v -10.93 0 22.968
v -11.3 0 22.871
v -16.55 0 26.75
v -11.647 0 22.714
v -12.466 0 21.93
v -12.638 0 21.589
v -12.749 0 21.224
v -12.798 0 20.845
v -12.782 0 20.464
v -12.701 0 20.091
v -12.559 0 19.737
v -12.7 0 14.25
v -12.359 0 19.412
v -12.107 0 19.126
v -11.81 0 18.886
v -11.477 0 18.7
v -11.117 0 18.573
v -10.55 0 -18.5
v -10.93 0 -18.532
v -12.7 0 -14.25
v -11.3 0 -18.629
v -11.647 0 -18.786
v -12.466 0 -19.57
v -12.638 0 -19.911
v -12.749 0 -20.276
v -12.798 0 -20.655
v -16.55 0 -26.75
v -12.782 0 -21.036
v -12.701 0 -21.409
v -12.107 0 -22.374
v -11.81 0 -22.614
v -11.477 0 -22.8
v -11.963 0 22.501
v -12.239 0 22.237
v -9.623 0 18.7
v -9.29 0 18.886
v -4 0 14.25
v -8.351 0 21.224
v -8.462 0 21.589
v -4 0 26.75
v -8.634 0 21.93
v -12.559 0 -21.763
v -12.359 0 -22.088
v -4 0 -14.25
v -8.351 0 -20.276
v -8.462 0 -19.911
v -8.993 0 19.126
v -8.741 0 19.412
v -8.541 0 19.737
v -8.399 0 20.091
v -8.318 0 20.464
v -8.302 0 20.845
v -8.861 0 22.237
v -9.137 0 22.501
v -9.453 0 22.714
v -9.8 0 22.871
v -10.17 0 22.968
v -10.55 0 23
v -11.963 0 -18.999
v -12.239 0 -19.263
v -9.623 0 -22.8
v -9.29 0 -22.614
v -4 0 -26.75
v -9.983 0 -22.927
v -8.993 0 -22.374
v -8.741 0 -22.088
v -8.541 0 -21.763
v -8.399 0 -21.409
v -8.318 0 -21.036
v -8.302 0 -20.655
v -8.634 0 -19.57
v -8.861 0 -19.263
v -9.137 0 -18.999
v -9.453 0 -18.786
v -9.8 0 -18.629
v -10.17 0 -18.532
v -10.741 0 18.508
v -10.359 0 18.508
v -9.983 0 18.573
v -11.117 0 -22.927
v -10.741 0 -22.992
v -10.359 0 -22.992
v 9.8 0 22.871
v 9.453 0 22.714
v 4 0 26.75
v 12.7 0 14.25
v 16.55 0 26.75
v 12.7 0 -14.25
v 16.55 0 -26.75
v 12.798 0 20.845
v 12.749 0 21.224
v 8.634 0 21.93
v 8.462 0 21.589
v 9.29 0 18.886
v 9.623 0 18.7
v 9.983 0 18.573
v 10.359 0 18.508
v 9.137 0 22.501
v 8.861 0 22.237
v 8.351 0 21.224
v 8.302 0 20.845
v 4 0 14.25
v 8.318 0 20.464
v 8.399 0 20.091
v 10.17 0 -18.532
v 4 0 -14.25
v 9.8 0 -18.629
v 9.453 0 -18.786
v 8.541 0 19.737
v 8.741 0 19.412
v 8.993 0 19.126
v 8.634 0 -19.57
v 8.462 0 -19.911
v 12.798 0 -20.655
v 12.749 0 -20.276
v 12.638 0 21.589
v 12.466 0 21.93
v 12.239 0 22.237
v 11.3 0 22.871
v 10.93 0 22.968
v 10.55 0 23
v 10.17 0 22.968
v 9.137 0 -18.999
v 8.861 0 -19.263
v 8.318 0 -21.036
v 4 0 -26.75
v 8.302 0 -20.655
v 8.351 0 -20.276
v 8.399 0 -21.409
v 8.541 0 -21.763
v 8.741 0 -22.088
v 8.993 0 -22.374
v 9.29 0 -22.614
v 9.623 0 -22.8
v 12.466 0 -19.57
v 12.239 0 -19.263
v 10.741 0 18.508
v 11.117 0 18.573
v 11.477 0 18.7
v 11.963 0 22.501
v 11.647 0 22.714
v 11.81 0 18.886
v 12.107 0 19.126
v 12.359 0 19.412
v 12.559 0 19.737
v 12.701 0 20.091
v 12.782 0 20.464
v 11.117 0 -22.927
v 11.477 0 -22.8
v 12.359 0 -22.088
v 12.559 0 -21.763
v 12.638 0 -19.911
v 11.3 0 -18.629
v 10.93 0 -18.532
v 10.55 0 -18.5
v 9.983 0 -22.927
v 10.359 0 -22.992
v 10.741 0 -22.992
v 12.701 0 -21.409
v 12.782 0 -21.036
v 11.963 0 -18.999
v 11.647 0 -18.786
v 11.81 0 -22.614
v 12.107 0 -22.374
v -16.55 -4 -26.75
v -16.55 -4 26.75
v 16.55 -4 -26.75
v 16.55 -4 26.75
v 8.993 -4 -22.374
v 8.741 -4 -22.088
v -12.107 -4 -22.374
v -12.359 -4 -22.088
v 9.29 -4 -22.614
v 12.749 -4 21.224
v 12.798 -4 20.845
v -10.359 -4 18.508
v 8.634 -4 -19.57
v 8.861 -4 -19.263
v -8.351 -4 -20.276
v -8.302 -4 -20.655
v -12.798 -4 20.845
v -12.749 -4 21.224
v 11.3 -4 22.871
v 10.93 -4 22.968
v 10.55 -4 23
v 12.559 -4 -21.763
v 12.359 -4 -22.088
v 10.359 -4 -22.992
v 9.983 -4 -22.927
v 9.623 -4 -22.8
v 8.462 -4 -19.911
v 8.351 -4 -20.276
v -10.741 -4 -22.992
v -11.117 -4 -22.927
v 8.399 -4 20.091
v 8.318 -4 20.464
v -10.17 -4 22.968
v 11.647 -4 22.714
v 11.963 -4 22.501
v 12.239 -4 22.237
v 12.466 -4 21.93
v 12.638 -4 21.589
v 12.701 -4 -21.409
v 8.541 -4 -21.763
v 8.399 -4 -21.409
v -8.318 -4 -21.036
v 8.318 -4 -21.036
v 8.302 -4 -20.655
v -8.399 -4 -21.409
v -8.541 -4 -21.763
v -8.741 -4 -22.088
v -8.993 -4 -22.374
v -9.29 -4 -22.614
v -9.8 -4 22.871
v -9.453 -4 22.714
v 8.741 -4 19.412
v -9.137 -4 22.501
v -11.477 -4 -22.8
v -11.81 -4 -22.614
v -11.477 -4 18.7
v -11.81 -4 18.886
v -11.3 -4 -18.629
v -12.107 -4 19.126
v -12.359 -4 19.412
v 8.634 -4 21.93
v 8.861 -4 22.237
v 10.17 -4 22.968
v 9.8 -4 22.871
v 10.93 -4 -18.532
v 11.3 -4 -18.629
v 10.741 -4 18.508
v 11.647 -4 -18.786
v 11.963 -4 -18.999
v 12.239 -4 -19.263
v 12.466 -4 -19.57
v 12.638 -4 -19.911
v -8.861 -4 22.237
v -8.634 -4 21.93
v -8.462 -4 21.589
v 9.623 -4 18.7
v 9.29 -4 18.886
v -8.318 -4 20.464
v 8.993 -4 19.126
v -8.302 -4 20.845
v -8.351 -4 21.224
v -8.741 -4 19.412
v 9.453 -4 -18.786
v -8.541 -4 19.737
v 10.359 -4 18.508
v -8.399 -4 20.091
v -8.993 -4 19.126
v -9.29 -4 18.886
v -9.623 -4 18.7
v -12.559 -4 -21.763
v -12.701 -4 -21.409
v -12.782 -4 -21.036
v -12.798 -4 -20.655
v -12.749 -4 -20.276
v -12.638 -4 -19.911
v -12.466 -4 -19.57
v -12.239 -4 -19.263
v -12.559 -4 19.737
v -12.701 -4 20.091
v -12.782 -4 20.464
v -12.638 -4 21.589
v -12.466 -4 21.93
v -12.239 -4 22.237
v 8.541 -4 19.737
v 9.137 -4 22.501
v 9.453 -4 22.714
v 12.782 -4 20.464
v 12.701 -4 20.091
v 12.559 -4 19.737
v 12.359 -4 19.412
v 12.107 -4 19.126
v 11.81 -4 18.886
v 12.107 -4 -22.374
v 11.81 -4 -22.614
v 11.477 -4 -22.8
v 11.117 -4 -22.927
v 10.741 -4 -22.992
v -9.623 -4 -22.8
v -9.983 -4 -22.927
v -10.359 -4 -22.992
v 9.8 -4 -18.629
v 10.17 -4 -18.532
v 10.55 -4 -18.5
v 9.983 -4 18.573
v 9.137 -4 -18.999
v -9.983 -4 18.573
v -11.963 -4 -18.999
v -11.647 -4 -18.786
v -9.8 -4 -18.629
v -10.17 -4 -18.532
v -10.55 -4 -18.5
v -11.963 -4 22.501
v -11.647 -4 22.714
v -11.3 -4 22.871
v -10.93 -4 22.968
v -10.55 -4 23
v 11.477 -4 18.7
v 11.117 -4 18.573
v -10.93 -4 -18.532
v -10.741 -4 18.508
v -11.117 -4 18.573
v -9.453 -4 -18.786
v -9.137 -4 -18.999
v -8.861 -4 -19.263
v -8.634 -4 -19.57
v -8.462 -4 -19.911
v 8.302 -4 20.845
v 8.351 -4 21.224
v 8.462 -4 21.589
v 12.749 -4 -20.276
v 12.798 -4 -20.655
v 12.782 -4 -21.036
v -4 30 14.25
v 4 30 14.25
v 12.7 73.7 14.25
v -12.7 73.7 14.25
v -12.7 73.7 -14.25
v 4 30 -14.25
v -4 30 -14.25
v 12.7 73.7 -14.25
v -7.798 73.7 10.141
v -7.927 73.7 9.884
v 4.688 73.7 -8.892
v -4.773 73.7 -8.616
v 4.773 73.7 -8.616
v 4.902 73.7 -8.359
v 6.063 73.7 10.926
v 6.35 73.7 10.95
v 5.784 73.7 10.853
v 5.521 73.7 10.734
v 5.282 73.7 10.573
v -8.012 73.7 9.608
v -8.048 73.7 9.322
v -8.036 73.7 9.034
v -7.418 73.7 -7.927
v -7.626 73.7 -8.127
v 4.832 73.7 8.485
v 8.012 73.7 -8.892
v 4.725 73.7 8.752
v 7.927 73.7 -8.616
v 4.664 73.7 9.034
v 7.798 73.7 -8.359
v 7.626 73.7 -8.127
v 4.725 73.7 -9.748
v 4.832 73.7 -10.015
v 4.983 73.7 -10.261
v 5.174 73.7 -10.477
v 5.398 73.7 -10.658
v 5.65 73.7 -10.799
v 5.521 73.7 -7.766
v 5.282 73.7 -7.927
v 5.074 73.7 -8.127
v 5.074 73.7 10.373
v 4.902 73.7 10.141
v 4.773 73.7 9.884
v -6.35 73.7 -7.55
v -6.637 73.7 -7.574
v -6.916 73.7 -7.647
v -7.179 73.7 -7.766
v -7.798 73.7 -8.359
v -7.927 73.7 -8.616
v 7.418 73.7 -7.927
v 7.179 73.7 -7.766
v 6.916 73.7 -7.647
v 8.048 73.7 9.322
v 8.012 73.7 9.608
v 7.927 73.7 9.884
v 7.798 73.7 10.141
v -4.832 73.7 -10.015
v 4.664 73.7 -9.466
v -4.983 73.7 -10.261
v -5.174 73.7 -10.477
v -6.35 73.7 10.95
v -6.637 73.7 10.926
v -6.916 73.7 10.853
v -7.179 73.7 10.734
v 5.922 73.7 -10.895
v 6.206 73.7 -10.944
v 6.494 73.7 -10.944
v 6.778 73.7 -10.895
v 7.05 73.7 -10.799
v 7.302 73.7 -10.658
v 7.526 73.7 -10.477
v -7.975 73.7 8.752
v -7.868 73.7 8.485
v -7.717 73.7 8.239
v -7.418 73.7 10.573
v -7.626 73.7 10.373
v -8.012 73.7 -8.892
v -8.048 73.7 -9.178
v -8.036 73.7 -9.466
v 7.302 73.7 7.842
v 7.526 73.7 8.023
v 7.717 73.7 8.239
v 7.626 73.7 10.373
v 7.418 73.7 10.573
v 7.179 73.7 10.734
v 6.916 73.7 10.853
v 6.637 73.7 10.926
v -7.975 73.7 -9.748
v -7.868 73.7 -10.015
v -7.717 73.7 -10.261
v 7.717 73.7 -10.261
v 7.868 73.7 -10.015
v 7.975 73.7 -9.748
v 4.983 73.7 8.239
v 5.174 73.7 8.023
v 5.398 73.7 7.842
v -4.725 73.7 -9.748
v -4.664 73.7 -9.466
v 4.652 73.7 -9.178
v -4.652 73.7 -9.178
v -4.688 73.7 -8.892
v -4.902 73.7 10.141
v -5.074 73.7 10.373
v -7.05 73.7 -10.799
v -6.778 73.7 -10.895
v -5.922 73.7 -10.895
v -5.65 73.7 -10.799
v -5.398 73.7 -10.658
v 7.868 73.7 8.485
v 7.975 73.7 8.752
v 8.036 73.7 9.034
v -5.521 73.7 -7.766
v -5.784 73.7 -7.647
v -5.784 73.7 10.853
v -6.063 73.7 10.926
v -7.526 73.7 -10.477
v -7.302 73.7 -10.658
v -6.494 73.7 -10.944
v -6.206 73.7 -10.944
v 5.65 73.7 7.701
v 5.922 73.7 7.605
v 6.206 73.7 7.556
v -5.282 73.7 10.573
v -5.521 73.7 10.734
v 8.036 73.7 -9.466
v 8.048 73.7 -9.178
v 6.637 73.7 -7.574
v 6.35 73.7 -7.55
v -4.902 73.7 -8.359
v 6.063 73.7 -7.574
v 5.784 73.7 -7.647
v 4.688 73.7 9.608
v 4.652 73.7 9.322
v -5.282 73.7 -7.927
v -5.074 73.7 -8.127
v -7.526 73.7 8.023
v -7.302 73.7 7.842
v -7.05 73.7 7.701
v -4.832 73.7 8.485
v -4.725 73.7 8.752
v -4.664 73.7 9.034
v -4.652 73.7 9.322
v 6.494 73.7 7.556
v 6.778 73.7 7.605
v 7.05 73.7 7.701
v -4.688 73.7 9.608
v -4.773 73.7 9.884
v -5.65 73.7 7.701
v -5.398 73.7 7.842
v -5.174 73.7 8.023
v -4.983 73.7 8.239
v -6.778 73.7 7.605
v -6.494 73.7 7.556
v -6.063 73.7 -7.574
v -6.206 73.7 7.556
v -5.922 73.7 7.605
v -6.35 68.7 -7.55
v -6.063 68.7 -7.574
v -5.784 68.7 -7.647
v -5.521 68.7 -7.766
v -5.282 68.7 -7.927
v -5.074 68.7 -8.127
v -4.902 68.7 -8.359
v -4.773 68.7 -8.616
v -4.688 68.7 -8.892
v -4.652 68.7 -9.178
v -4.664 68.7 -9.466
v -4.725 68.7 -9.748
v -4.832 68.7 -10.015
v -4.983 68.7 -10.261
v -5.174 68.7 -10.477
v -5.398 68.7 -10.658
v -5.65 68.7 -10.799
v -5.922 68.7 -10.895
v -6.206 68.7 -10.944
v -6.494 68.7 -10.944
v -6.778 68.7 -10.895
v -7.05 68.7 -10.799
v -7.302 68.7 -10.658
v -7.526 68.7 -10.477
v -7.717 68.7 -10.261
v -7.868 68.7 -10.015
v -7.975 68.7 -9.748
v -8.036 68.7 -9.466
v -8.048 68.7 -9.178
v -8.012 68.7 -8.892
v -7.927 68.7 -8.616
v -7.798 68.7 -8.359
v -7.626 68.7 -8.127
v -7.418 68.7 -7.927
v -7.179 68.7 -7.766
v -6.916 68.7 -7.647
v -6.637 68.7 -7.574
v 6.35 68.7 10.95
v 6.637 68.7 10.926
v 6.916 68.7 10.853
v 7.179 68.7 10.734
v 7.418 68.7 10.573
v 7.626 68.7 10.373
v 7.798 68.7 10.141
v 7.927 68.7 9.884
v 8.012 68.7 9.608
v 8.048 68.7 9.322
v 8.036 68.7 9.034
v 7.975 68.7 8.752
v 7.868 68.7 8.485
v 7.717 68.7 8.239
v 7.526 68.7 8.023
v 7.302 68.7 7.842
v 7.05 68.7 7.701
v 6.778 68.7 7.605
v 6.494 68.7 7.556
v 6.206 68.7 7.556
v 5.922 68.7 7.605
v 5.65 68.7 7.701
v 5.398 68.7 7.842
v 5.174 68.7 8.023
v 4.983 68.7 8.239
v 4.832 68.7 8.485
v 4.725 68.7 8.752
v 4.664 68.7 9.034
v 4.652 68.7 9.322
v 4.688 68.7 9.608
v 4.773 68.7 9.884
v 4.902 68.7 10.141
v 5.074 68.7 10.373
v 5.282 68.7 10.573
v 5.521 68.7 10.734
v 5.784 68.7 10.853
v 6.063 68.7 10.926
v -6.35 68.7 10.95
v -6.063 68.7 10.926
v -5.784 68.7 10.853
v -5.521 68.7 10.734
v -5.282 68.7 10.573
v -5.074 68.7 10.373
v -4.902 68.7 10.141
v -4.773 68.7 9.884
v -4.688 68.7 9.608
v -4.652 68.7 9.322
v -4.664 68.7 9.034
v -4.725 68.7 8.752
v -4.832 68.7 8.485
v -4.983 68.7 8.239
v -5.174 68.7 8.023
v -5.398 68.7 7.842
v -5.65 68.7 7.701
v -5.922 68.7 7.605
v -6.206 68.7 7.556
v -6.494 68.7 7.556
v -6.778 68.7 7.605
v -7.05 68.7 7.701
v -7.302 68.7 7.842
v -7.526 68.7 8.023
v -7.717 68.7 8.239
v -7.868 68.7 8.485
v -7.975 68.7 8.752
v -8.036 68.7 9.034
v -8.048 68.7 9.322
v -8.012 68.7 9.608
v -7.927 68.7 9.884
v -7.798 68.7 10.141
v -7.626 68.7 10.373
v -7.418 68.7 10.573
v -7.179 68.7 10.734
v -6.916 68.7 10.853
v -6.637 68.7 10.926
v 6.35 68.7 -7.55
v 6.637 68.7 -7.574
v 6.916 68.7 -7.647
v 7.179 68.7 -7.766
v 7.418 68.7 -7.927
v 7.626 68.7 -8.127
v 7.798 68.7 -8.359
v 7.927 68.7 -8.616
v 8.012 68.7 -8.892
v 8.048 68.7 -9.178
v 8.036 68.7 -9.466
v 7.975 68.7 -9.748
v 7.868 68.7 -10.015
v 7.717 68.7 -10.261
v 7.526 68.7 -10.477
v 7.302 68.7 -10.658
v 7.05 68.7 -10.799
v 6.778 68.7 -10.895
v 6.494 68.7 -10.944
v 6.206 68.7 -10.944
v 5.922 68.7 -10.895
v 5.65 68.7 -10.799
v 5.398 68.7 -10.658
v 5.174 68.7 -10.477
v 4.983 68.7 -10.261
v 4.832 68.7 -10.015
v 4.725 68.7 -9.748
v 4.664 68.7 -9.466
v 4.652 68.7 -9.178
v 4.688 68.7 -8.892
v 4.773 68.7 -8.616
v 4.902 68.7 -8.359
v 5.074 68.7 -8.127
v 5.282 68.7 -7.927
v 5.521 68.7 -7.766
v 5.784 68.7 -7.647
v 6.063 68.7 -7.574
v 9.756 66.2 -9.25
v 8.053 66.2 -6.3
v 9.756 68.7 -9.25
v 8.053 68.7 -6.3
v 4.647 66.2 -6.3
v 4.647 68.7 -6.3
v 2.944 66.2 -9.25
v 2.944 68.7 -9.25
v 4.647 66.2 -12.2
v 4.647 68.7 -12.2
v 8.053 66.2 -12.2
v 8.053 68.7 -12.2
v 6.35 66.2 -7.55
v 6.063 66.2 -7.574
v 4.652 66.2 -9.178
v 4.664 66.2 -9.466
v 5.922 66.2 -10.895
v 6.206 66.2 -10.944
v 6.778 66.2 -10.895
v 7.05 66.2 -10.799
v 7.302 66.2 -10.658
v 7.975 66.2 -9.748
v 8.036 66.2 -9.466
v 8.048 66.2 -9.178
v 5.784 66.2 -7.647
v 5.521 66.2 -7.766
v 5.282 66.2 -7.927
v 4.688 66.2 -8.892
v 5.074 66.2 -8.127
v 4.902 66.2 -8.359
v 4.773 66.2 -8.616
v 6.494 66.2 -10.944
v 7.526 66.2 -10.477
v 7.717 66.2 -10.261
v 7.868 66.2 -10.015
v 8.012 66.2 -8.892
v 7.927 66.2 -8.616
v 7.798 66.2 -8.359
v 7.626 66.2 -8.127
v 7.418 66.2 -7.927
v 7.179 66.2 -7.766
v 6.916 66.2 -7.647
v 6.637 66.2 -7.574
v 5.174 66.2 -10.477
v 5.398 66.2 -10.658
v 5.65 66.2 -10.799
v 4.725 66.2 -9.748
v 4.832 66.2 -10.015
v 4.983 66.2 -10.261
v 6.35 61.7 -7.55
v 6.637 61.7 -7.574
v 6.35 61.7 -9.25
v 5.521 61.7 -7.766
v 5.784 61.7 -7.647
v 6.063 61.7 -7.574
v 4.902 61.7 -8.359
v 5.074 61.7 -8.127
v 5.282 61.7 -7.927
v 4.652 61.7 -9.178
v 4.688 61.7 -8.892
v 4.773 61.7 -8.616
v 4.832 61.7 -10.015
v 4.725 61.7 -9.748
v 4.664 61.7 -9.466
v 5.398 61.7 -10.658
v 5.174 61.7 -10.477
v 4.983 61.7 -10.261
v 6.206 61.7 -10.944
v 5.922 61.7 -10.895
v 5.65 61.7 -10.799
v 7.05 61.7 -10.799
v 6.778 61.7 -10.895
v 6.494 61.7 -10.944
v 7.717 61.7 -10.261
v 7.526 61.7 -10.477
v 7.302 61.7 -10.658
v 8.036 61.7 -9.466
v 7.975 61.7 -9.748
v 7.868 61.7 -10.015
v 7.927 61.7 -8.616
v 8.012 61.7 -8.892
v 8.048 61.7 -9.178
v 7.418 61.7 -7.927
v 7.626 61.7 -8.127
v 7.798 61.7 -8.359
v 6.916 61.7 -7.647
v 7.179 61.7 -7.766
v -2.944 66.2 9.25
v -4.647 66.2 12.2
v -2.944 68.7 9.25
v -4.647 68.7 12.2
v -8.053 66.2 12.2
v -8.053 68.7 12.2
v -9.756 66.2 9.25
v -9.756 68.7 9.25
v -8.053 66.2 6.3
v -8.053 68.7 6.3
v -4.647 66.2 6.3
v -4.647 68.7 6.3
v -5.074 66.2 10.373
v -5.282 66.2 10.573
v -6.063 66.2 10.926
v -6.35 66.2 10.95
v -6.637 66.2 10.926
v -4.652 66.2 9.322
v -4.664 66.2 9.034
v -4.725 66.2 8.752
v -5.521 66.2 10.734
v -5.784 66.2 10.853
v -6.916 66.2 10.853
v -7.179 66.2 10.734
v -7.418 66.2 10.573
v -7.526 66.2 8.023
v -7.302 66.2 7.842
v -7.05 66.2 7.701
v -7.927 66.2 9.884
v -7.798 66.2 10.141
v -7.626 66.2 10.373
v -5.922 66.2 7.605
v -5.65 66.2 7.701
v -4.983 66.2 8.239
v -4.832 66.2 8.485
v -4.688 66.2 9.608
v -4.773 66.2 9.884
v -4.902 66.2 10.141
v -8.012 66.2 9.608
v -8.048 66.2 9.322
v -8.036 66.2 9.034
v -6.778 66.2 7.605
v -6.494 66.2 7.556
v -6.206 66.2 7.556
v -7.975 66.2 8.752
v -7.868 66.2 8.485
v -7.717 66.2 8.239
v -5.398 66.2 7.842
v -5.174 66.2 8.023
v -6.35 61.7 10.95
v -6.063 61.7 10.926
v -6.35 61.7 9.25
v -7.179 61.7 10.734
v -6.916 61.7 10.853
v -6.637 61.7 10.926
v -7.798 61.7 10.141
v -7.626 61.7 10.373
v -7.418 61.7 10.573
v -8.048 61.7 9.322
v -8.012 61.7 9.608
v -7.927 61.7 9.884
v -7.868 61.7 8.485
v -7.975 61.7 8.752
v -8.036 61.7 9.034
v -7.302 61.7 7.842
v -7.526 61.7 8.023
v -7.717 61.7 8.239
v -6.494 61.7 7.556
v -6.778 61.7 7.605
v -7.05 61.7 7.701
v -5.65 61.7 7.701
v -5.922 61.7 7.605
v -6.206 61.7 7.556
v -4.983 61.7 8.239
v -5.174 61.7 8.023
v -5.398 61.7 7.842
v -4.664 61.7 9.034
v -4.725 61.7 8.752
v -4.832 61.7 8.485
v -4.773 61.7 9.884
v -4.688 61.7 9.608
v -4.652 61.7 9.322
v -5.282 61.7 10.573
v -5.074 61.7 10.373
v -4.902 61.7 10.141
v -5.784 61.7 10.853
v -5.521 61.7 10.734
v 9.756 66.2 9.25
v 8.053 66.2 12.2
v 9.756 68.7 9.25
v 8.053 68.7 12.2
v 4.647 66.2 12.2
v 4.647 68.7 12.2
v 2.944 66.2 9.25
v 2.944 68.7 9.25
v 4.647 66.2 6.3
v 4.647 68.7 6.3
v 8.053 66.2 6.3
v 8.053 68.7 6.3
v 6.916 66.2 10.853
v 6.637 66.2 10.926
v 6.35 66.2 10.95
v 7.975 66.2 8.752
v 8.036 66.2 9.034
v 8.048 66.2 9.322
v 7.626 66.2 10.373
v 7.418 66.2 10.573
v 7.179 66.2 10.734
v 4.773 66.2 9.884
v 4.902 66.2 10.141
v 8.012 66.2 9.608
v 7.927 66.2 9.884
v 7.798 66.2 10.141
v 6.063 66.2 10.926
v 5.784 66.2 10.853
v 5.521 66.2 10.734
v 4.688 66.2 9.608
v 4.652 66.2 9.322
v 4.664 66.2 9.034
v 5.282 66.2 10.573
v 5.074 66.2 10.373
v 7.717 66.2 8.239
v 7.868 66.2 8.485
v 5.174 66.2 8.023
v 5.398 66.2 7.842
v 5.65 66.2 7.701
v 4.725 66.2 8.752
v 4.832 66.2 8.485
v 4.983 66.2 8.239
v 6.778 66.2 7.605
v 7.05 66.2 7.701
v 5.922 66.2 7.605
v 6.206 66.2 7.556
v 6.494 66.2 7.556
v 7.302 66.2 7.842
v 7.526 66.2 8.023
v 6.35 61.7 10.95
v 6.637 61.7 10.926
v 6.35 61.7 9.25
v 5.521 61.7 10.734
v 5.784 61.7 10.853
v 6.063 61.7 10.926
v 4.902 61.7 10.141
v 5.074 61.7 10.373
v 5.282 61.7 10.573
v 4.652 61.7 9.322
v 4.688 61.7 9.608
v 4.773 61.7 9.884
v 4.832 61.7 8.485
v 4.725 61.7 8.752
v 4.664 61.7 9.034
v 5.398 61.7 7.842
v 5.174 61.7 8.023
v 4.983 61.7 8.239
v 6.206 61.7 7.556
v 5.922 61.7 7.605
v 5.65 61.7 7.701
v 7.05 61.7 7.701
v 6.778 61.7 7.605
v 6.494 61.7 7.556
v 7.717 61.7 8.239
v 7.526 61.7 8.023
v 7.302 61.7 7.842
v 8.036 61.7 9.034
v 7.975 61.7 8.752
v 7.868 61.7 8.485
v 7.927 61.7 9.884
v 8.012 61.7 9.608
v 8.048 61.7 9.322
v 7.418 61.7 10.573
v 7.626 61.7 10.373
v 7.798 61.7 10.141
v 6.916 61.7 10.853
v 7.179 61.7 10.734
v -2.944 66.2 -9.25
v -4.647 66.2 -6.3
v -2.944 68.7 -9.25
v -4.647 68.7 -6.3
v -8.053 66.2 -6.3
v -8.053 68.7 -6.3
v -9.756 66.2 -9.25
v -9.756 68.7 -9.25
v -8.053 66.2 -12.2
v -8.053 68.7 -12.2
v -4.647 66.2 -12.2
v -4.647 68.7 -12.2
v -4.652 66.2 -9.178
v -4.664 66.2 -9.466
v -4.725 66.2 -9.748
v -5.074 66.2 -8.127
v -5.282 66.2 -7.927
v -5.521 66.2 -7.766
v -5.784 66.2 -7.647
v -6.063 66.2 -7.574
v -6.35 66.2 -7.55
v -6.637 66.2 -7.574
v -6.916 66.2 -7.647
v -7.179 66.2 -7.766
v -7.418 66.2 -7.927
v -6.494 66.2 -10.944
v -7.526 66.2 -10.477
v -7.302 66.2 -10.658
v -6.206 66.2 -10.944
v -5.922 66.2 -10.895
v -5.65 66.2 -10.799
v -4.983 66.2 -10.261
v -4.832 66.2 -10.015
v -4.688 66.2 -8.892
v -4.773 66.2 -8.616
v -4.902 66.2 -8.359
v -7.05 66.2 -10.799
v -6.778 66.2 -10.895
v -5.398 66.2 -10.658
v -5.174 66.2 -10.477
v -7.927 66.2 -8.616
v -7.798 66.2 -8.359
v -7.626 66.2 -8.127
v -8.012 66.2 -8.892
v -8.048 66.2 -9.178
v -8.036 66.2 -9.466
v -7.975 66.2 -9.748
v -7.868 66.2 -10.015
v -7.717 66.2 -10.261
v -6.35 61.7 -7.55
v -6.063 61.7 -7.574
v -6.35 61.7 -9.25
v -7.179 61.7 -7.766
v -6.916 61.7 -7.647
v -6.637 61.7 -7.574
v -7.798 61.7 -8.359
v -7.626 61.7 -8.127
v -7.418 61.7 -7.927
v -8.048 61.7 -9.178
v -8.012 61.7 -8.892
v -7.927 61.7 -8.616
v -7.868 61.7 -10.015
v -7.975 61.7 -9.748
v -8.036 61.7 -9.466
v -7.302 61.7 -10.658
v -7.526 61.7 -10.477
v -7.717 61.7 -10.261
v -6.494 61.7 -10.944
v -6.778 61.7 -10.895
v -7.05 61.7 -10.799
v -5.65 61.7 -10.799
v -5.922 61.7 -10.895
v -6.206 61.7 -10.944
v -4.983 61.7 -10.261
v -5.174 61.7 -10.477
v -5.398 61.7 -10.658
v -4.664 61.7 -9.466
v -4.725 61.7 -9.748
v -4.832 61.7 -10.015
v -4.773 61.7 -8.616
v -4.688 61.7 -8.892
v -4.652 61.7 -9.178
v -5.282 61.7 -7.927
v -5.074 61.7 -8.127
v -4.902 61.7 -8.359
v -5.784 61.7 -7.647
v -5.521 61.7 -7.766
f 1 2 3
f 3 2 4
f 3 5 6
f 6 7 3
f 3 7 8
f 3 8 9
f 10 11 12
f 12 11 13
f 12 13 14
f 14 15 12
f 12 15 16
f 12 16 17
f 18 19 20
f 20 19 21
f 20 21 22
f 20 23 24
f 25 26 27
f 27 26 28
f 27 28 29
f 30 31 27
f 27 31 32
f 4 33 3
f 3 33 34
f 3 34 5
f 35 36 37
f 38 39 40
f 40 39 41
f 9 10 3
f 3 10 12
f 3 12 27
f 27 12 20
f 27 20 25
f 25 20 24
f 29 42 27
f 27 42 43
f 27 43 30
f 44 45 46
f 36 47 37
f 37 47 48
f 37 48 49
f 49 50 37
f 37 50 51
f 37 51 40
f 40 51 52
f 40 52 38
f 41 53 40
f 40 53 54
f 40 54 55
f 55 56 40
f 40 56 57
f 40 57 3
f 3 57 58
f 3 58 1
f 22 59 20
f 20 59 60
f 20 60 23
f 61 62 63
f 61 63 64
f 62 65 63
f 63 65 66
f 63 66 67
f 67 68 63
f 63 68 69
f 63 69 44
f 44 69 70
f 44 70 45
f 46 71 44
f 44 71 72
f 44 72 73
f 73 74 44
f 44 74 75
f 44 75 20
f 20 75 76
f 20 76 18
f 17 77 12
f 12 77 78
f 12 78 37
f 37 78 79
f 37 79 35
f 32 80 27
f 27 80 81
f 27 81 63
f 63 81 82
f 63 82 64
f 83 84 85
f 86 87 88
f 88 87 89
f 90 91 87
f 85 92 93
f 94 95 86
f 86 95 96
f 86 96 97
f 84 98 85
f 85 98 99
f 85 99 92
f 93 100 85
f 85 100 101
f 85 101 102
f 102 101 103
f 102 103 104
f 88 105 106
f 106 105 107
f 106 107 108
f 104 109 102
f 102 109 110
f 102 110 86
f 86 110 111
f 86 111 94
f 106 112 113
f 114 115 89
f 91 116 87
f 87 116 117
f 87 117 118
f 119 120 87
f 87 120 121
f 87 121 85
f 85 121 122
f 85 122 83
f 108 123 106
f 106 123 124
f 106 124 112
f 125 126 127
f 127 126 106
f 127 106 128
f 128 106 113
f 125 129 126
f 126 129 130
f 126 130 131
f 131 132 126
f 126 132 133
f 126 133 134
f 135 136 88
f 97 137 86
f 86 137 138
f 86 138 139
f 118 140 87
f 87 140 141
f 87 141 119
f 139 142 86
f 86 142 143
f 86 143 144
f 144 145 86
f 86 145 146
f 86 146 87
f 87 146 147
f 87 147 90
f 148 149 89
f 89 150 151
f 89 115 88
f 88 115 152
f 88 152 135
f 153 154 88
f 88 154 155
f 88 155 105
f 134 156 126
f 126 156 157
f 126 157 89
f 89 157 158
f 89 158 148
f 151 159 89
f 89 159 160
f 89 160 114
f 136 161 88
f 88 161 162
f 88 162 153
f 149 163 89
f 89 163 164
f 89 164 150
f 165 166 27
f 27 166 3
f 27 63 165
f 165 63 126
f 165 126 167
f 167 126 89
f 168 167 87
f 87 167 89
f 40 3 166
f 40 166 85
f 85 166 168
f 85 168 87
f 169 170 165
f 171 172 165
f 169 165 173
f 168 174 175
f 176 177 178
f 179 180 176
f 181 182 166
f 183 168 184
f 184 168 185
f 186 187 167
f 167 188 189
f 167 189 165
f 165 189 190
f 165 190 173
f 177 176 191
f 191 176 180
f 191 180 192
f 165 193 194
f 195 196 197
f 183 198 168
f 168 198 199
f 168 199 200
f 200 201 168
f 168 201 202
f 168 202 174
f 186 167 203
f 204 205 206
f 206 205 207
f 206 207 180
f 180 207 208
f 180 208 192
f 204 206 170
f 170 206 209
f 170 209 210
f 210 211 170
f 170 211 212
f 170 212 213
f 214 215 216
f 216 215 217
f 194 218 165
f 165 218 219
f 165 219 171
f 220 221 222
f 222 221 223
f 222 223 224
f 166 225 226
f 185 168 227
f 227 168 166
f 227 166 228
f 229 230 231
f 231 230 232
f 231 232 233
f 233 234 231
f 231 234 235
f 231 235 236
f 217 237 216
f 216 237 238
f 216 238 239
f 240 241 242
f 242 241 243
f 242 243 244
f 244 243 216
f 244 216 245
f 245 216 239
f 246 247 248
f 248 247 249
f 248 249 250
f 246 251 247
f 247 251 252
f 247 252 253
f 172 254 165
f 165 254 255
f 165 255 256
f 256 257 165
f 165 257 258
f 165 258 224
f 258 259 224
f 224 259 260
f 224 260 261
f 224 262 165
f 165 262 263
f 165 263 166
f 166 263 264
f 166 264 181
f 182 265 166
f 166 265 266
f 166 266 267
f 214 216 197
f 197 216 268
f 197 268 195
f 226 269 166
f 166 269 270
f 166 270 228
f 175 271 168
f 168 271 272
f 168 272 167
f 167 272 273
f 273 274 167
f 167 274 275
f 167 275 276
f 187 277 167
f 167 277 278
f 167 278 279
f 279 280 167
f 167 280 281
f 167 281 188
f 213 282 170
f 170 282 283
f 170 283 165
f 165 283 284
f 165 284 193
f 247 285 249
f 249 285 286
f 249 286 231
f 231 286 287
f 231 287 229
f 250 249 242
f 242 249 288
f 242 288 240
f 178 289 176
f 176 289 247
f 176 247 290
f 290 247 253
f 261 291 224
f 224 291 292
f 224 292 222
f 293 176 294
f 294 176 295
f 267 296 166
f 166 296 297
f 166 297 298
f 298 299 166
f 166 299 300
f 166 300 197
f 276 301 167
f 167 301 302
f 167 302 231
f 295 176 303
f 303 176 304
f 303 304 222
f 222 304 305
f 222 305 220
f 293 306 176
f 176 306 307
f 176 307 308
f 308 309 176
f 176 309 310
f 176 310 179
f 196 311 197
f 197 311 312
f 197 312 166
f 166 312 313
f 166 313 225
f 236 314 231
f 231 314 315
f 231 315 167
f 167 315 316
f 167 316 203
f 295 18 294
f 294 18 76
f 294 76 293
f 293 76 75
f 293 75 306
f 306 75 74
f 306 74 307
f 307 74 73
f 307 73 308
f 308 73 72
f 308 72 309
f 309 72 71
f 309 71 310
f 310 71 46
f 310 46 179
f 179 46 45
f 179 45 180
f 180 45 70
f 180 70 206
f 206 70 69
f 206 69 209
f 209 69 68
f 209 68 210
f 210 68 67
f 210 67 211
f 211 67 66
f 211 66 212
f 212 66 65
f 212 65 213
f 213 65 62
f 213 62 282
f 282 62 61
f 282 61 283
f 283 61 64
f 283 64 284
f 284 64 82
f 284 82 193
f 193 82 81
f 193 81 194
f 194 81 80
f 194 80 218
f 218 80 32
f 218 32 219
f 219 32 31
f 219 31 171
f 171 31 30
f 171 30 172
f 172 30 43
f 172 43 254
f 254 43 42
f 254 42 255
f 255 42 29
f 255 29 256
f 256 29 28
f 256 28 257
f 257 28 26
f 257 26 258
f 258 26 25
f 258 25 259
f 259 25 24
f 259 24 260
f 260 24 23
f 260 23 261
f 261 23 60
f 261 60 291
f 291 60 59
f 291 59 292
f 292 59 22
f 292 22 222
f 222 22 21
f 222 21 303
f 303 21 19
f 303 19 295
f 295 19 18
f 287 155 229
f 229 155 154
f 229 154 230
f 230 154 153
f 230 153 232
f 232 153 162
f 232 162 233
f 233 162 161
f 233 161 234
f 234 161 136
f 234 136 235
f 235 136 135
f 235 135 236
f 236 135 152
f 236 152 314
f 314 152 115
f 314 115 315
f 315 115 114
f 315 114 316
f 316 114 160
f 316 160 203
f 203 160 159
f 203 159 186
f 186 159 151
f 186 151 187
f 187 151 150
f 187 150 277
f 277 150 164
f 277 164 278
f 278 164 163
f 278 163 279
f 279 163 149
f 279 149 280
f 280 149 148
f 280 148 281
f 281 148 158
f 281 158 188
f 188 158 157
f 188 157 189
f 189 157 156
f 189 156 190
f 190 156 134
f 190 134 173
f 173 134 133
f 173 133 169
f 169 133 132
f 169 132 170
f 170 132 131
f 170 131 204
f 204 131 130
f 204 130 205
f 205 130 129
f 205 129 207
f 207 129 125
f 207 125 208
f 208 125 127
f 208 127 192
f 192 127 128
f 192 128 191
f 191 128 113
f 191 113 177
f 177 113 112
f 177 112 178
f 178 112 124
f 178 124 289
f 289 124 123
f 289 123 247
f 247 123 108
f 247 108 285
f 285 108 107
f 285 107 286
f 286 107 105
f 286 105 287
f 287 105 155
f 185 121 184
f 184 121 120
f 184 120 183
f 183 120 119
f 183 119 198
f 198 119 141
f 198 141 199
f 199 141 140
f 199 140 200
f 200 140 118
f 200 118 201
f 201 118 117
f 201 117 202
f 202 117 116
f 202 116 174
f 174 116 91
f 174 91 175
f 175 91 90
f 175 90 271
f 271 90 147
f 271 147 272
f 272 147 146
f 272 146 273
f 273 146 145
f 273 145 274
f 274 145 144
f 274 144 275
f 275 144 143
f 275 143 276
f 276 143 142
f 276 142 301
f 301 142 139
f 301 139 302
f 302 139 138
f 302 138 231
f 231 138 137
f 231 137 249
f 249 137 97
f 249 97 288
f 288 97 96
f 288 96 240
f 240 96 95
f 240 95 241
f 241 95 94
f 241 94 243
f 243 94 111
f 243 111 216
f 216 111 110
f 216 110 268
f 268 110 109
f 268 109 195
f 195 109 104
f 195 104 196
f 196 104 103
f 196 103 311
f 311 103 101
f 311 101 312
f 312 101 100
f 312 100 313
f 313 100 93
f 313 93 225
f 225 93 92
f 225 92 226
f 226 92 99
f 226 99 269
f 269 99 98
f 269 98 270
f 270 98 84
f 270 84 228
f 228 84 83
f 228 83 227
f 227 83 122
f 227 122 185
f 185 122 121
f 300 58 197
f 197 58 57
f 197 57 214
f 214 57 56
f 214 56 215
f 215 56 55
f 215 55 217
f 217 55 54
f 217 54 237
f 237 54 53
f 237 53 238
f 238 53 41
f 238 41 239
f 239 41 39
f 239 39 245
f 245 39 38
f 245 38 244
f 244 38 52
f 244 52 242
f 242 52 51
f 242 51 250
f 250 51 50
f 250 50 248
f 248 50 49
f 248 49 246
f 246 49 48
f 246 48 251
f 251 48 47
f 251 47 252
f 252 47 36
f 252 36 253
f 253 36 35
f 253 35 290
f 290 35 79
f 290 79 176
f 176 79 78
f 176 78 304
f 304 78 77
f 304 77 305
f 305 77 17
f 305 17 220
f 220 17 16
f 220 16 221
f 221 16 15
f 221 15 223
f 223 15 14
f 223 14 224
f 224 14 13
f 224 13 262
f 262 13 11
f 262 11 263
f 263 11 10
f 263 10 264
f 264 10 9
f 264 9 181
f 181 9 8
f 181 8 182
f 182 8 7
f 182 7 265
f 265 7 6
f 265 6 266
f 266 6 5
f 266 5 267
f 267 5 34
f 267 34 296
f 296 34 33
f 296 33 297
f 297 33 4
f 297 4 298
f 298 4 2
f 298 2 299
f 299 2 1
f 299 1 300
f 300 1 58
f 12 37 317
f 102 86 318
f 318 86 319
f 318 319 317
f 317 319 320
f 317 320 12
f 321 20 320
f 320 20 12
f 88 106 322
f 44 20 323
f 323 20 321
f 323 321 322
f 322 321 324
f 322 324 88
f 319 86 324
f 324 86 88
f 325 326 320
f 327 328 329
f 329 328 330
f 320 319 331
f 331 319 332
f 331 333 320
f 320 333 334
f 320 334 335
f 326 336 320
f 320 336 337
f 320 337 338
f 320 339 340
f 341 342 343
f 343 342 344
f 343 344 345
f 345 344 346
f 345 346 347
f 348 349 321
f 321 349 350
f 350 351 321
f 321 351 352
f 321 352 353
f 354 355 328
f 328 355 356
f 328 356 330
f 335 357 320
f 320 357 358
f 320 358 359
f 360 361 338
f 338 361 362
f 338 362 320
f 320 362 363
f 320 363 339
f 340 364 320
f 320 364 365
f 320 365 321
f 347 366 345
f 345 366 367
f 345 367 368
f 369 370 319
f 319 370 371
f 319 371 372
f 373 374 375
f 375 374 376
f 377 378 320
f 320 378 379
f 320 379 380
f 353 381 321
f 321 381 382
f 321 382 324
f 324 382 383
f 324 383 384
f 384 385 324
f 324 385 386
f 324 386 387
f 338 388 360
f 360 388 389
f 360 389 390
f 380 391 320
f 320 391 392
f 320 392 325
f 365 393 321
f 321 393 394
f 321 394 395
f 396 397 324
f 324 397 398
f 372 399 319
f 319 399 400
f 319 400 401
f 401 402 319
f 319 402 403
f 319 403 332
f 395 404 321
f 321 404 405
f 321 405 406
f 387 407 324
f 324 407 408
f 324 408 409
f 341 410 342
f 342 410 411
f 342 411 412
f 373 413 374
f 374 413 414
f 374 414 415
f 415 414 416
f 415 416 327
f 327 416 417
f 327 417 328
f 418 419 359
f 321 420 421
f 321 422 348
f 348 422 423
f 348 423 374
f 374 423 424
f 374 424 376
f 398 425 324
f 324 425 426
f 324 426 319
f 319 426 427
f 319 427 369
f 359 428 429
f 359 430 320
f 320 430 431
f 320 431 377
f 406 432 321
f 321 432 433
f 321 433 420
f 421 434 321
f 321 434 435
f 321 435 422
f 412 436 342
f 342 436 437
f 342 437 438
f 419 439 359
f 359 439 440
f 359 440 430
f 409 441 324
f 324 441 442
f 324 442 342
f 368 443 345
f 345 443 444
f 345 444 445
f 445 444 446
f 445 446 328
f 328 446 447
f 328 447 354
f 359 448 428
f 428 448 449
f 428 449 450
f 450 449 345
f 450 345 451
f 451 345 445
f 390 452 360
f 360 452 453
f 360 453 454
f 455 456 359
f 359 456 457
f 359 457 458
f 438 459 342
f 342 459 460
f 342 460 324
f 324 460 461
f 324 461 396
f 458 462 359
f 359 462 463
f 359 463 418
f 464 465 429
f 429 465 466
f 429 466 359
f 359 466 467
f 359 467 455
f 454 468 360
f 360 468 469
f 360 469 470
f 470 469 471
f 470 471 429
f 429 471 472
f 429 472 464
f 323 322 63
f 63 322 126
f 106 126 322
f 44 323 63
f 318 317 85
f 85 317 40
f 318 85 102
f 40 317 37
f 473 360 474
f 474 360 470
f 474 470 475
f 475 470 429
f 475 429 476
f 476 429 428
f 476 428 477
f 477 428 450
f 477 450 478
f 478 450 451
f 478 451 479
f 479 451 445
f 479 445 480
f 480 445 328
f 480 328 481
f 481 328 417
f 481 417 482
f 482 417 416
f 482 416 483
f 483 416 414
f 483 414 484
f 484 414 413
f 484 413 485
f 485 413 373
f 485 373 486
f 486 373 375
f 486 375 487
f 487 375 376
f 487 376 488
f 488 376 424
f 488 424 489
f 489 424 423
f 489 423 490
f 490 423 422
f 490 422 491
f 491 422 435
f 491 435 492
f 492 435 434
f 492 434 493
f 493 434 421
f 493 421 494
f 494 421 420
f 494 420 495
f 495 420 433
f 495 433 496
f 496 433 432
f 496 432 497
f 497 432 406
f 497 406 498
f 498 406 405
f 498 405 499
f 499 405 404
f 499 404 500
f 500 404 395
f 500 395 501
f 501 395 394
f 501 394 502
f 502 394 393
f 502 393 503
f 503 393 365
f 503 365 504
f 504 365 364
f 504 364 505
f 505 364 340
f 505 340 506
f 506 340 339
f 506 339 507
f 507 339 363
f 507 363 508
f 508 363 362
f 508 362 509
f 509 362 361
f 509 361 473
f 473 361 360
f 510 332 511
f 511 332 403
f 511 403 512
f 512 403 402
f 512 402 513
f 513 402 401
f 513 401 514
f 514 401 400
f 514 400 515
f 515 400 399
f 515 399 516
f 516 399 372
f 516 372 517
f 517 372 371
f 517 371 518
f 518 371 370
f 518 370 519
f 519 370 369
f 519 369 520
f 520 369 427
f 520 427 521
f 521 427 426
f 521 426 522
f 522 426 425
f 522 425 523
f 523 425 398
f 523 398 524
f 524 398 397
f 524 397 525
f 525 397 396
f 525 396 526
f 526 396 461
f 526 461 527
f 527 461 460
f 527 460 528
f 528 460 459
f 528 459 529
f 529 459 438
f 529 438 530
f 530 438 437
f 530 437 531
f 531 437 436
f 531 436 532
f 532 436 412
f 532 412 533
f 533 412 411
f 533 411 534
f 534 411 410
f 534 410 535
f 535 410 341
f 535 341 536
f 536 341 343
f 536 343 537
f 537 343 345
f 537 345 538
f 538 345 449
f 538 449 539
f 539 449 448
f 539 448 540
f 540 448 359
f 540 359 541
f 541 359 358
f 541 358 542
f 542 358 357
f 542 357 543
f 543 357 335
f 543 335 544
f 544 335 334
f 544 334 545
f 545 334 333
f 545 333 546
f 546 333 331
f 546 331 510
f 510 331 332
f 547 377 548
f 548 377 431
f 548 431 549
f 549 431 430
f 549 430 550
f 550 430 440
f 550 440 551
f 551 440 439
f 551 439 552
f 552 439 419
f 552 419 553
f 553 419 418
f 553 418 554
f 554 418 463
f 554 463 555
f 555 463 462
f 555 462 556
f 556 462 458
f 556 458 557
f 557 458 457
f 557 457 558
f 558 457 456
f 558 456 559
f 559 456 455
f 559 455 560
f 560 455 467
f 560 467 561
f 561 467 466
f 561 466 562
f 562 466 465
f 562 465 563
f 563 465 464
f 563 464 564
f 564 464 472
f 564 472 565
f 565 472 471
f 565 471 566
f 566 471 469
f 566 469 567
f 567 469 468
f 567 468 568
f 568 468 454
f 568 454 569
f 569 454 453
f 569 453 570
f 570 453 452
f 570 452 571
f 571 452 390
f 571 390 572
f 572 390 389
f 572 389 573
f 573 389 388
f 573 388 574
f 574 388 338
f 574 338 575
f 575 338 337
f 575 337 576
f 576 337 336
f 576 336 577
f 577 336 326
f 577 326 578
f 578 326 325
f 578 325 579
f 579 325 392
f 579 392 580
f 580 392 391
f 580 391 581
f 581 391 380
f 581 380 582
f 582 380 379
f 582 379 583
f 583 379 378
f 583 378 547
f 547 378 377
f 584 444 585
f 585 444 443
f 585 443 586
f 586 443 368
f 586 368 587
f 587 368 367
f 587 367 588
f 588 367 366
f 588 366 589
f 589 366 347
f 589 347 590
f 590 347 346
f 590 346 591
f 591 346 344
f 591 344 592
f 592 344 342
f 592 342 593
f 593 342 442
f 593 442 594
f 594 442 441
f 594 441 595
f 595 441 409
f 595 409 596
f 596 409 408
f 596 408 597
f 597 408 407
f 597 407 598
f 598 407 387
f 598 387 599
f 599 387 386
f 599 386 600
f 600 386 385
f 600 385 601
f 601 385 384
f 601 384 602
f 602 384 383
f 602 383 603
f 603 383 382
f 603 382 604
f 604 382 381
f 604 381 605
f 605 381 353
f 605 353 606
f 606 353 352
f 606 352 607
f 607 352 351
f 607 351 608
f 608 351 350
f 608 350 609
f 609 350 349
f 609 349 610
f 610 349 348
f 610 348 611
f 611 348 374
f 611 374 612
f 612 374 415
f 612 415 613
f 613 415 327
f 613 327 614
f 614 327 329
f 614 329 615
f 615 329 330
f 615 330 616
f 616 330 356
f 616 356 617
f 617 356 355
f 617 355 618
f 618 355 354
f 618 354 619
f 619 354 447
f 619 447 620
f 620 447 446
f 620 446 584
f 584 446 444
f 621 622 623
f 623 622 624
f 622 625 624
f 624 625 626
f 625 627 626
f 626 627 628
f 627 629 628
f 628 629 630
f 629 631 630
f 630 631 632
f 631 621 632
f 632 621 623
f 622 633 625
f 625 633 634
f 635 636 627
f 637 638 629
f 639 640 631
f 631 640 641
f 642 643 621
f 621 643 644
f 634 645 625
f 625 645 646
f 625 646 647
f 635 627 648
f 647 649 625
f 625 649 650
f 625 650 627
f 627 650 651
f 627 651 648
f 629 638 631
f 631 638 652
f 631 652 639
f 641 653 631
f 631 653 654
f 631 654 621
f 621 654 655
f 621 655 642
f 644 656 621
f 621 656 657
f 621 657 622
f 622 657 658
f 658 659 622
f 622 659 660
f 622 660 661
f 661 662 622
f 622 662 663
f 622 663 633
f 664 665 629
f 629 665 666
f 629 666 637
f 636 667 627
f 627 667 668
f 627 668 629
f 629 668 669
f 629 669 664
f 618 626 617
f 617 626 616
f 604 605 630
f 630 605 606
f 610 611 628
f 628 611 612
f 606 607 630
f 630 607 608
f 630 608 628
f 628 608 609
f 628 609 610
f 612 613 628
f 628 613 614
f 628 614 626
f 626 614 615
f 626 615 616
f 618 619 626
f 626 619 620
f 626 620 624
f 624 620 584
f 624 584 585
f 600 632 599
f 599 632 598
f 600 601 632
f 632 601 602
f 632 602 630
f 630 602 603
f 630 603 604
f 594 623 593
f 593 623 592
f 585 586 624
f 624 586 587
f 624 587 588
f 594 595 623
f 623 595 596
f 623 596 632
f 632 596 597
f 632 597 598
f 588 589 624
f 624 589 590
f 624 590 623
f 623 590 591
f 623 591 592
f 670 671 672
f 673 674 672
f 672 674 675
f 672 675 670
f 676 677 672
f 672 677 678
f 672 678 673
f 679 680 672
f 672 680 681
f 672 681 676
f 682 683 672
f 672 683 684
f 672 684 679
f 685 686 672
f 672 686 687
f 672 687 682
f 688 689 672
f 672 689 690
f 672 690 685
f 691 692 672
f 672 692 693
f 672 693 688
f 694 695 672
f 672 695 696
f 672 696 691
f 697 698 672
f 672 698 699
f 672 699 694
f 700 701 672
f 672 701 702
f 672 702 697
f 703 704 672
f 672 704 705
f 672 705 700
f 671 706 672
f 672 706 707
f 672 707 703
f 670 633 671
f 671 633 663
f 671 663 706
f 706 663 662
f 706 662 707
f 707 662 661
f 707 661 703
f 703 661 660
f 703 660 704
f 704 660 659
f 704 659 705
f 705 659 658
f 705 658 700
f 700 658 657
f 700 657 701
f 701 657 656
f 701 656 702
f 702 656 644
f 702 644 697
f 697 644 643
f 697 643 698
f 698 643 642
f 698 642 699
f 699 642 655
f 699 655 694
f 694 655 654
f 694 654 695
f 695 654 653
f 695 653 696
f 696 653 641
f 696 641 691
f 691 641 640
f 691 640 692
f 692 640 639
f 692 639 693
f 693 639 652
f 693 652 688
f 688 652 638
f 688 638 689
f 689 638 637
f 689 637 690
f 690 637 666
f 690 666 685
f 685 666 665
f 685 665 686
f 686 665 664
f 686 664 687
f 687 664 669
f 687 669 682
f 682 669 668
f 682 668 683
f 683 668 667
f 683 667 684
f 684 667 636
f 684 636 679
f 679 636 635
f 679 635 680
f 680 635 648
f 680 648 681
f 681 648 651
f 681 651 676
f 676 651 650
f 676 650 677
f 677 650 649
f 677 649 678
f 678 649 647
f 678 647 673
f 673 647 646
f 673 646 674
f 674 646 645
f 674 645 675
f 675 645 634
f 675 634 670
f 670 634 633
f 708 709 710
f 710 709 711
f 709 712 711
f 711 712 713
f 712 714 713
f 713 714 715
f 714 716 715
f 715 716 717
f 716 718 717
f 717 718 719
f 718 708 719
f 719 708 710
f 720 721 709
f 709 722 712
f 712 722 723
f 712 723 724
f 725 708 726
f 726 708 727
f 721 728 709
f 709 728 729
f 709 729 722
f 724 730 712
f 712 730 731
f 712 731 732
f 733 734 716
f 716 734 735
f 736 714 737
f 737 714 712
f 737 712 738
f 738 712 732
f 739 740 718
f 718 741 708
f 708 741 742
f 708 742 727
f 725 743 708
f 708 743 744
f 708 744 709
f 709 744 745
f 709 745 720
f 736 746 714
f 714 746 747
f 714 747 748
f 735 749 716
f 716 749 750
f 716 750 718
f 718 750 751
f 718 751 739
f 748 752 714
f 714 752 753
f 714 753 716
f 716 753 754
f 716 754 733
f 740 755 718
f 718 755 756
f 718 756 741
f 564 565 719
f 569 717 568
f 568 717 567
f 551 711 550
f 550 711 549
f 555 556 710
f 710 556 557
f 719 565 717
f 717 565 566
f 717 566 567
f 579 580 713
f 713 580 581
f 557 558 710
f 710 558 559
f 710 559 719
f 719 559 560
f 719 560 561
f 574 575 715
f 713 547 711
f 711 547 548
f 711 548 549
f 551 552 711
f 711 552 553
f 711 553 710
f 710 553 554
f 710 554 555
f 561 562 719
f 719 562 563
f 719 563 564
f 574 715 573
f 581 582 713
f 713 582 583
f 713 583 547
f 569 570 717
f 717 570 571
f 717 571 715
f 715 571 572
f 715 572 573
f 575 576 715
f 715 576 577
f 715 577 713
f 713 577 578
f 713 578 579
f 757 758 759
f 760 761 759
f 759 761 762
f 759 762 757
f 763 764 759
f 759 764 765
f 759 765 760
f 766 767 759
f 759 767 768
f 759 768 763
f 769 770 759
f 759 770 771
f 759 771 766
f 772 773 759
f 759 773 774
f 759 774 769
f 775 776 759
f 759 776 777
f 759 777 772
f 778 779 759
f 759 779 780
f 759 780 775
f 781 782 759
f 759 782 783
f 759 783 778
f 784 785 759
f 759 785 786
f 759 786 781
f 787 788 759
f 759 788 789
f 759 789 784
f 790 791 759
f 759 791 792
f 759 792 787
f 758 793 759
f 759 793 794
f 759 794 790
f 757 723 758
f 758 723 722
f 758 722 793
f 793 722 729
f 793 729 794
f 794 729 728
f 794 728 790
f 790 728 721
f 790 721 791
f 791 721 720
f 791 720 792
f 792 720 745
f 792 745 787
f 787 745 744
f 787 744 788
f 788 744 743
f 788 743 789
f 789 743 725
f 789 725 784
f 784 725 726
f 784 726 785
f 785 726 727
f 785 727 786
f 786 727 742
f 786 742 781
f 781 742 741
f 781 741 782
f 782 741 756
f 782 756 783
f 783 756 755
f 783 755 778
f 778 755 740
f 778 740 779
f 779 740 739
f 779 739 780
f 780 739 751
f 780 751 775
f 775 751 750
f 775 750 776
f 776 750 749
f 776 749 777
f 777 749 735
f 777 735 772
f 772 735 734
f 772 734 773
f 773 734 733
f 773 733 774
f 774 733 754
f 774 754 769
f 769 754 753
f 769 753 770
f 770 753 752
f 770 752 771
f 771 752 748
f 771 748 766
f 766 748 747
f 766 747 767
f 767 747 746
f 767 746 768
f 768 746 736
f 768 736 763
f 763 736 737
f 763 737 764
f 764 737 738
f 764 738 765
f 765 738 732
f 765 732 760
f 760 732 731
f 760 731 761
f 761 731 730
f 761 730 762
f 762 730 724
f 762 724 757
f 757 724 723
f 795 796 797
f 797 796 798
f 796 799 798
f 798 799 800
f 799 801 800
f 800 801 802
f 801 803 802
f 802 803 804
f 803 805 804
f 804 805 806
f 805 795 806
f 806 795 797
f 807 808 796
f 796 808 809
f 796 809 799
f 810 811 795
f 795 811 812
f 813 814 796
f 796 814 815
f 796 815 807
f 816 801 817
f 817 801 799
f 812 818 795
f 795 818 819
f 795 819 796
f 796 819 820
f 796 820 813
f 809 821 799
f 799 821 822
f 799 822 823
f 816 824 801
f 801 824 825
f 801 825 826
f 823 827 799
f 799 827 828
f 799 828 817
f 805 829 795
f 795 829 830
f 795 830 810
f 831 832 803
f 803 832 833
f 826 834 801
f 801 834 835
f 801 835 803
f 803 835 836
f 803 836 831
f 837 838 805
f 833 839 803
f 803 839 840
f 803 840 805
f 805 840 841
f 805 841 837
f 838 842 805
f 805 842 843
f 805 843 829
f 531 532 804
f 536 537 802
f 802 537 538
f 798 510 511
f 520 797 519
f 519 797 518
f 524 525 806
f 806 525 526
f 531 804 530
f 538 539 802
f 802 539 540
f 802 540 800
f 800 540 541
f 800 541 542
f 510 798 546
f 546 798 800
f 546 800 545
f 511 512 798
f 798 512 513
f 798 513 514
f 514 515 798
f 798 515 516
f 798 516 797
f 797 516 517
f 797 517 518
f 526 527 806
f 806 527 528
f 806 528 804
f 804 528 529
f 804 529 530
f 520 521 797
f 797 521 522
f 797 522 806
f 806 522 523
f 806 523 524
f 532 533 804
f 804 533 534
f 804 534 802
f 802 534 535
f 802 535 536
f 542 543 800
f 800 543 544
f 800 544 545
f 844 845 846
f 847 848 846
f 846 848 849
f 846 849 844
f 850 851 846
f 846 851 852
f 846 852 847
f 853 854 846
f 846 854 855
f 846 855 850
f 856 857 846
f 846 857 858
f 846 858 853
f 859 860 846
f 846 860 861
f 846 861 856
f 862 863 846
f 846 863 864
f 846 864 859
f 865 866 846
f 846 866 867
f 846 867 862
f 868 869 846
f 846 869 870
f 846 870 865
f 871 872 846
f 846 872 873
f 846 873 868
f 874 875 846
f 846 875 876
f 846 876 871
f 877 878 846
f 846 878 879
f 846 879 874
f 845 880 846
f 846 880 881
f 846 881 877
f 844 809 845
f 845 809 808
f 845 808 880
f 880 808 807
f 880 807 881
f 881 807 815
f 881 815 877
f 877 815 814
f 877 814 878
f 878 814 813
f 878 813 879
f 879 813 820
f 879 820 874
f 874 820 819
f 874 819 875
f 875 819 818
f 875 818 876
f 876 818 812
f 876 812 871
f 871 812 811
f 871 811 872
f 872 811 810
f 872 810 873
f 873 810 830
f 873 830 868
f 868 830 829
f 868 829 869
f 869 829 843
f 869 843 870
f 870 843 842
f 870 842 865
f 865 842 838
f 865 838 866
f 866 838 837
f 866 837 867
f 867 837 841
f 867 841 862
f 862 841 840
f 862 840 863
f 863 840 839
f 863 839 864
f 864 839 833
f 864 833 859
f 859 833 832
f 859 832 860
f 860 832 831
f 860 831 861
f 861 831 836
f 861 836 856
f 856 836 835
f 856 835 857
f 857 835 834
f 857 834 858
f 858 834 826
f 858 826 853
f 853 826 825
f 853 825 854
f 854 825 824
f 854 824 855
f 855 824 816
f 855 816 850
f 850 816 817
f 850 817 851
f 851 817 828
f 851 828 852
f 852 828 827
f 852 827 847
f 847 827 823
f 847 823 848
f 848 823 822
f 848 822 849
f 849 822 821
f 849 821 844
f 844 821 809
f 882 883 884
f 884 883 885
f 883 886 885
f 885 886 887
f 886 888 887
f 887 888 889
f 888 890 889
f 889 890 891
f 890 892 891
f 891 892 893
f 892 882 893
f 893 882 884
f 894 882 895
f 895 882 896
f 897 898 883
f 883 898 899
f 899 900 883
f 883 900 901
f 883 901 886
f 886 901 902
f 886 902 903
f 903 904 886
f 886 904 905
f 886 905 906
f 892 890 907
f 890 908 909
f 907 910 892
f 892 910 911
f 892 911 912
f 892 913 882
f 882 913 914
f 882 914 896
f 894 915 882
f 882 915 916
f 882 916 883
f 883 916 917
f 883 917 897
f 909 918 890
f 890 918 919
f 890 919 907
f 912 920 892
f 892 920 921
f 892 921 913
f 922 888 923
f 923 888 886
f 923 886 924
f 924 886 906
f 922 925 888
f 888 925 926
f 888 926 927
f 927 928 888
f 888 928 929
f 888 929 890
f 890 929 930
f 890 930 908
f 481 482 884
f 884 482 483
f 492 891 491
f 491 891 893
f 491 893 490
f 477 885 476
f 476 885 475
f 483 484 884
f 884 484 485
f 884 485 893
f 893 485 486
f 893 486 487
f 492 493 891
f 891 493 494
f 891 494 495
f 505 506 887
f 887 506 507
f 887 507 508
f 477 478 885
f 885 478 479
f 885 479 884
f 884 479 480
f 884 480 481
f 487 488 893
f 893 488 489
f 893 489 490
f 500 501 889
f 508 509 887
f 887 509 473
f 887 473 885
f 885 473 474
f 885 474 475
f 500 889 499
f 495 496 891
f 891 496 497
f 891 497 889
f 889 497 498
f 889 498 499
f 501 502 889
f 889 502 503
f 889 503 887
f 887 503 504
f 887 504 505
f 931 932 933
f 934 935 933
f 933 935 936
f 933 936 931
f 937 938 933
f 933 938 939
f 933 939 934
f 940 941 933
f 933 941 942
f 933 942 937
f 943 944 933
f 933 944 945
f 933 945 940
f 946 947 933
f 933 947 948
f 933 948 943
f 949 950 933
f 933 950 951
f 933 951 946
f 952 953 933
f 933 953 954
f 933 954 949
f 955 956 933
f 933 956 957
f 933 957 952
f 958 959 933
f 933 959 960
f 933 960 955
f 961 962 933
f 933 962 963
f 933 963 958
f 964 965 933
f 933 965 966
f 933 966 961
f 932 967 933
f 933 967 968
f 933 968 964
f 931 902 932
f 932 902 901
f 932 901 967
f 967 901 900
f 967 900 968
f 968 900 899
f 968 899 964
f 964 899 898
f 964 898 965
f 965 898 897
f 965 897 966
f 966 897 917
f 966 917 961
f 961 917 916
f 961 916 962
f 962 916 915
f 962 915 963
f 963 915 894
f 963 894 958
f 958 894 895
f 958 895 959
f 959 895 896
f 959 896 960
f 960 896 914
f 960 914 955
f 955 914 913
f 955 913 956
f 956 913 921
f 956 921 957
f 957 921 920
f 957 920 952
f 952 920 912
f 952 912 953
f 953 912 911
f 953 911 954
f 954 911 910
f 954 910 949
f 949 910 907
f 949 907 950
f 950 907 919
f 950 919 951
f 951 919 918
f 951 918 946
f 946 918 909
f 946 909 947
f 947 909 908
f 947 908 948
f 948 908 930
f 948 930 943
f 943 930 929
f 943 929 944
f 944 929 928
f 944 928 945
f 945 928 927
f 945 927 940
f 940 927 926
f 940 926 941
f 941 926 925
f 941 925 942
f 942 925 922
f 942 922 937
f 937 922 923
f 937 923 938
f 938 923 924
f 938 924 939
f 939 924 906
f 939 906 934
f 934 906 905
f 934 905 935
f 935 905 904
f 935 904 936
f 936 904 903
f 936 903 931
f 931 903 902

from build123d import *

# Parameters (mm, degrees)
SKETCH10_W          = 33.1
SKETCH10_H          = 53.5
BOSS_EXTRUDE7_DEPTH = 4
SKETCH12_R          = 2.25
CUT_EXTRUDE2_DEPTH  = 32.709068104
SKETCH11_W          = 25.4
SKETCH11_H          = 28.5
BOSS_EXTRUDE8_DEPTH = 73.7
RIB3_REACH          = 82.132
SKETCH13_WALL_W     = 194.764219338
SKETCH13_WALL_H     = 8
SKETCH14_R          = 1.7
CUT_EXTRUDE3_DEPTH  = 12
CUT_EXTRUDE5_START  = -5
SKETCH14_3_R        = 1.7
CUT_EXTRUDE5_DEPTH  = 2.5


with BuildPart() as part:
    # Sketch10 → Boss-Extrude7 (new body)
    with BuildSketch(Plane(origin=(0, 0, 0), x_dir=(1, 0, 0), z_dir=(0, 1, 0))):
        Rectangle(SKETCH10_W, SKETCH10_H)
    extrude(amount=-BOSS_EXTRUDE7_DEPTH)

    # Sketch12 → Cut-Extrude2 (cut, through all)
    with BuildSketch(Plane(origin=(0, 0, 0), x_dir=(1, 0, 0), z_dir=(0, 1, 0))):
        with Locations(Location((-10.55, 20.75, 0), (0, 0, 270))):
            Circle(SKETCH12_R)
        with Locations(Location((10.55, 20.75, 0), (0, 0, 270))):
            Circle(SKETCH12_R)
        with Locations(Location((10.55, -20.75, 0), (0, 0, 270))):
            Circle(SKETCH12_R)
        with Locations(Location((-10.55, -20.75, 0), (0, 0, 270))):
            Circle(SKETCH12_R)
    extrude(amount=-CUT_EXTRUDE2_DEPTH, mode=Mode.SUBTRACT)

    # Sketch11 → Boss-Extrude8 (add)
    with BuildSketch(Plane(origin=(0, 0, 0), x_dir=(1, 0, 0), z_dir=(0, 1, 0))):
        Rectangle(SKETCH11_W, SKETCH11_H)
    extrude(amount=BOSS_EXTRUDE8_DEPTH)

    # Sketch13 wall → Rib3 (add, up to next)
    with BuildSketch(Plane(origin=(0, 15, -20.5), x_dir=(0, 0.923076923077, 0.384615384615), z_dir=(0, -0.384615384615, 0.923076923077)), mode=Mode.PRIVATE) as rib3_sk1:
        Rectangle(SKETCH13_WALL_W, SKETCH13_WALL_H)
    rib3_tool1 = extrude(rib3_sk1.sketch, amount=RIB3_REACH, mode=Mode.PRIVATE) - part.part
    rib3 = rib3_tool1.solids().sort_by_distance((0, 15, -20.5))[0]
    add(rib3)

    # Mirror1: Rib3 across plane
    add(rib3.mirror(Plane.XY))

    # Sketch14 → Cut-Extrude3 (cut)
    with BuildSketch(Plane(origin=(0, 73.7, 0), x_dir=(1, 0, 0), z_dir=(0, 1, 0))):
        with Locations(Location((-6.35, 9.25, 0), (0, 0, 270))):
            Circle(SKETCH14_R)
        with Locations(Location((6.35, 9.25, 0), (0, 0, 270))):
            Circle(SKETCH14_R)
        with Locations(Location((-6.35, -9.25, 0), (0, 0, 270))):
            Circle(SKETCH14_R)
        with Locations(Location((6.35, -9.25, 0), (0, 0, 270))):
            Circle(SKETCH14_R)
    extrude(amount=-CUT_EXTRUDE3_DEPTH, mode=Mode.SUBTRACT)

    # Sketch14<3> → Cut-Extrude5 (cut)
    with BuildSketch(Plane(origin=(0, 73.7, 0), x_dir=(1, 0, 0), z_dir=(0, 1, 0)).offset(CUT_EXTRUDE5_START)):
        Polygon((-2.943633412, 9.25), (-4.646816706, 12.2), (-8.053183294, 12.2), (-9.756366588, 9.25), (-8.053183294, 6.3), (-4.646816706, 6.3), align=None)
        with Locations(Location((-6.35, 9.25, 0), (0, 0, 270))):
            Circle(SKETCH14_3_R, mode=Mode.SUBTRACT)
        Polygon((9.756366588, 9.25), (8.053183294, 12.2), (4.646816706, 12.2), (2.943633412, 9.25), (4.646816706, 6.3), (8.053183294, 6.3), align=None)
        with Locations(Location((6.35, 9.25, 0), (0, 0, 270))):
            Circle(SKETCH14_3_R, mode=Mode.SUBTRACT)
        Polygon((9.756366588, -9.25), (8.053183294, -6.3), (4.646816706, -6.3), (2.943633412, -9.25), (4.646816706, -12.2), (8.053183294, -12.2), align=None)
        with Locations(Location((6.35, -9.25, 0), (0, 0, 270))):
            Circle(SKETCH14_3_R, mode=Mode.SUBTRACT)
        Polygon((-2.943633412, -9.25), (-4.646816706, -6.3), (-8.053183294, -6.3), (-9.756366588, -9.25), (-8.053183294, -12.2), (-4.646816706, -12.2), align=None)
        with Locations(Location((-6.35, -9.25, 0), (0, 0, 270))):
            Circle(SKETCH14_3_R, mode=Mode.SUBTRACT)
    extrude(amount=-CUT_EXTRUDE5_DEPTH, mode=Mode.SUBTRACT)


solid = part.part
